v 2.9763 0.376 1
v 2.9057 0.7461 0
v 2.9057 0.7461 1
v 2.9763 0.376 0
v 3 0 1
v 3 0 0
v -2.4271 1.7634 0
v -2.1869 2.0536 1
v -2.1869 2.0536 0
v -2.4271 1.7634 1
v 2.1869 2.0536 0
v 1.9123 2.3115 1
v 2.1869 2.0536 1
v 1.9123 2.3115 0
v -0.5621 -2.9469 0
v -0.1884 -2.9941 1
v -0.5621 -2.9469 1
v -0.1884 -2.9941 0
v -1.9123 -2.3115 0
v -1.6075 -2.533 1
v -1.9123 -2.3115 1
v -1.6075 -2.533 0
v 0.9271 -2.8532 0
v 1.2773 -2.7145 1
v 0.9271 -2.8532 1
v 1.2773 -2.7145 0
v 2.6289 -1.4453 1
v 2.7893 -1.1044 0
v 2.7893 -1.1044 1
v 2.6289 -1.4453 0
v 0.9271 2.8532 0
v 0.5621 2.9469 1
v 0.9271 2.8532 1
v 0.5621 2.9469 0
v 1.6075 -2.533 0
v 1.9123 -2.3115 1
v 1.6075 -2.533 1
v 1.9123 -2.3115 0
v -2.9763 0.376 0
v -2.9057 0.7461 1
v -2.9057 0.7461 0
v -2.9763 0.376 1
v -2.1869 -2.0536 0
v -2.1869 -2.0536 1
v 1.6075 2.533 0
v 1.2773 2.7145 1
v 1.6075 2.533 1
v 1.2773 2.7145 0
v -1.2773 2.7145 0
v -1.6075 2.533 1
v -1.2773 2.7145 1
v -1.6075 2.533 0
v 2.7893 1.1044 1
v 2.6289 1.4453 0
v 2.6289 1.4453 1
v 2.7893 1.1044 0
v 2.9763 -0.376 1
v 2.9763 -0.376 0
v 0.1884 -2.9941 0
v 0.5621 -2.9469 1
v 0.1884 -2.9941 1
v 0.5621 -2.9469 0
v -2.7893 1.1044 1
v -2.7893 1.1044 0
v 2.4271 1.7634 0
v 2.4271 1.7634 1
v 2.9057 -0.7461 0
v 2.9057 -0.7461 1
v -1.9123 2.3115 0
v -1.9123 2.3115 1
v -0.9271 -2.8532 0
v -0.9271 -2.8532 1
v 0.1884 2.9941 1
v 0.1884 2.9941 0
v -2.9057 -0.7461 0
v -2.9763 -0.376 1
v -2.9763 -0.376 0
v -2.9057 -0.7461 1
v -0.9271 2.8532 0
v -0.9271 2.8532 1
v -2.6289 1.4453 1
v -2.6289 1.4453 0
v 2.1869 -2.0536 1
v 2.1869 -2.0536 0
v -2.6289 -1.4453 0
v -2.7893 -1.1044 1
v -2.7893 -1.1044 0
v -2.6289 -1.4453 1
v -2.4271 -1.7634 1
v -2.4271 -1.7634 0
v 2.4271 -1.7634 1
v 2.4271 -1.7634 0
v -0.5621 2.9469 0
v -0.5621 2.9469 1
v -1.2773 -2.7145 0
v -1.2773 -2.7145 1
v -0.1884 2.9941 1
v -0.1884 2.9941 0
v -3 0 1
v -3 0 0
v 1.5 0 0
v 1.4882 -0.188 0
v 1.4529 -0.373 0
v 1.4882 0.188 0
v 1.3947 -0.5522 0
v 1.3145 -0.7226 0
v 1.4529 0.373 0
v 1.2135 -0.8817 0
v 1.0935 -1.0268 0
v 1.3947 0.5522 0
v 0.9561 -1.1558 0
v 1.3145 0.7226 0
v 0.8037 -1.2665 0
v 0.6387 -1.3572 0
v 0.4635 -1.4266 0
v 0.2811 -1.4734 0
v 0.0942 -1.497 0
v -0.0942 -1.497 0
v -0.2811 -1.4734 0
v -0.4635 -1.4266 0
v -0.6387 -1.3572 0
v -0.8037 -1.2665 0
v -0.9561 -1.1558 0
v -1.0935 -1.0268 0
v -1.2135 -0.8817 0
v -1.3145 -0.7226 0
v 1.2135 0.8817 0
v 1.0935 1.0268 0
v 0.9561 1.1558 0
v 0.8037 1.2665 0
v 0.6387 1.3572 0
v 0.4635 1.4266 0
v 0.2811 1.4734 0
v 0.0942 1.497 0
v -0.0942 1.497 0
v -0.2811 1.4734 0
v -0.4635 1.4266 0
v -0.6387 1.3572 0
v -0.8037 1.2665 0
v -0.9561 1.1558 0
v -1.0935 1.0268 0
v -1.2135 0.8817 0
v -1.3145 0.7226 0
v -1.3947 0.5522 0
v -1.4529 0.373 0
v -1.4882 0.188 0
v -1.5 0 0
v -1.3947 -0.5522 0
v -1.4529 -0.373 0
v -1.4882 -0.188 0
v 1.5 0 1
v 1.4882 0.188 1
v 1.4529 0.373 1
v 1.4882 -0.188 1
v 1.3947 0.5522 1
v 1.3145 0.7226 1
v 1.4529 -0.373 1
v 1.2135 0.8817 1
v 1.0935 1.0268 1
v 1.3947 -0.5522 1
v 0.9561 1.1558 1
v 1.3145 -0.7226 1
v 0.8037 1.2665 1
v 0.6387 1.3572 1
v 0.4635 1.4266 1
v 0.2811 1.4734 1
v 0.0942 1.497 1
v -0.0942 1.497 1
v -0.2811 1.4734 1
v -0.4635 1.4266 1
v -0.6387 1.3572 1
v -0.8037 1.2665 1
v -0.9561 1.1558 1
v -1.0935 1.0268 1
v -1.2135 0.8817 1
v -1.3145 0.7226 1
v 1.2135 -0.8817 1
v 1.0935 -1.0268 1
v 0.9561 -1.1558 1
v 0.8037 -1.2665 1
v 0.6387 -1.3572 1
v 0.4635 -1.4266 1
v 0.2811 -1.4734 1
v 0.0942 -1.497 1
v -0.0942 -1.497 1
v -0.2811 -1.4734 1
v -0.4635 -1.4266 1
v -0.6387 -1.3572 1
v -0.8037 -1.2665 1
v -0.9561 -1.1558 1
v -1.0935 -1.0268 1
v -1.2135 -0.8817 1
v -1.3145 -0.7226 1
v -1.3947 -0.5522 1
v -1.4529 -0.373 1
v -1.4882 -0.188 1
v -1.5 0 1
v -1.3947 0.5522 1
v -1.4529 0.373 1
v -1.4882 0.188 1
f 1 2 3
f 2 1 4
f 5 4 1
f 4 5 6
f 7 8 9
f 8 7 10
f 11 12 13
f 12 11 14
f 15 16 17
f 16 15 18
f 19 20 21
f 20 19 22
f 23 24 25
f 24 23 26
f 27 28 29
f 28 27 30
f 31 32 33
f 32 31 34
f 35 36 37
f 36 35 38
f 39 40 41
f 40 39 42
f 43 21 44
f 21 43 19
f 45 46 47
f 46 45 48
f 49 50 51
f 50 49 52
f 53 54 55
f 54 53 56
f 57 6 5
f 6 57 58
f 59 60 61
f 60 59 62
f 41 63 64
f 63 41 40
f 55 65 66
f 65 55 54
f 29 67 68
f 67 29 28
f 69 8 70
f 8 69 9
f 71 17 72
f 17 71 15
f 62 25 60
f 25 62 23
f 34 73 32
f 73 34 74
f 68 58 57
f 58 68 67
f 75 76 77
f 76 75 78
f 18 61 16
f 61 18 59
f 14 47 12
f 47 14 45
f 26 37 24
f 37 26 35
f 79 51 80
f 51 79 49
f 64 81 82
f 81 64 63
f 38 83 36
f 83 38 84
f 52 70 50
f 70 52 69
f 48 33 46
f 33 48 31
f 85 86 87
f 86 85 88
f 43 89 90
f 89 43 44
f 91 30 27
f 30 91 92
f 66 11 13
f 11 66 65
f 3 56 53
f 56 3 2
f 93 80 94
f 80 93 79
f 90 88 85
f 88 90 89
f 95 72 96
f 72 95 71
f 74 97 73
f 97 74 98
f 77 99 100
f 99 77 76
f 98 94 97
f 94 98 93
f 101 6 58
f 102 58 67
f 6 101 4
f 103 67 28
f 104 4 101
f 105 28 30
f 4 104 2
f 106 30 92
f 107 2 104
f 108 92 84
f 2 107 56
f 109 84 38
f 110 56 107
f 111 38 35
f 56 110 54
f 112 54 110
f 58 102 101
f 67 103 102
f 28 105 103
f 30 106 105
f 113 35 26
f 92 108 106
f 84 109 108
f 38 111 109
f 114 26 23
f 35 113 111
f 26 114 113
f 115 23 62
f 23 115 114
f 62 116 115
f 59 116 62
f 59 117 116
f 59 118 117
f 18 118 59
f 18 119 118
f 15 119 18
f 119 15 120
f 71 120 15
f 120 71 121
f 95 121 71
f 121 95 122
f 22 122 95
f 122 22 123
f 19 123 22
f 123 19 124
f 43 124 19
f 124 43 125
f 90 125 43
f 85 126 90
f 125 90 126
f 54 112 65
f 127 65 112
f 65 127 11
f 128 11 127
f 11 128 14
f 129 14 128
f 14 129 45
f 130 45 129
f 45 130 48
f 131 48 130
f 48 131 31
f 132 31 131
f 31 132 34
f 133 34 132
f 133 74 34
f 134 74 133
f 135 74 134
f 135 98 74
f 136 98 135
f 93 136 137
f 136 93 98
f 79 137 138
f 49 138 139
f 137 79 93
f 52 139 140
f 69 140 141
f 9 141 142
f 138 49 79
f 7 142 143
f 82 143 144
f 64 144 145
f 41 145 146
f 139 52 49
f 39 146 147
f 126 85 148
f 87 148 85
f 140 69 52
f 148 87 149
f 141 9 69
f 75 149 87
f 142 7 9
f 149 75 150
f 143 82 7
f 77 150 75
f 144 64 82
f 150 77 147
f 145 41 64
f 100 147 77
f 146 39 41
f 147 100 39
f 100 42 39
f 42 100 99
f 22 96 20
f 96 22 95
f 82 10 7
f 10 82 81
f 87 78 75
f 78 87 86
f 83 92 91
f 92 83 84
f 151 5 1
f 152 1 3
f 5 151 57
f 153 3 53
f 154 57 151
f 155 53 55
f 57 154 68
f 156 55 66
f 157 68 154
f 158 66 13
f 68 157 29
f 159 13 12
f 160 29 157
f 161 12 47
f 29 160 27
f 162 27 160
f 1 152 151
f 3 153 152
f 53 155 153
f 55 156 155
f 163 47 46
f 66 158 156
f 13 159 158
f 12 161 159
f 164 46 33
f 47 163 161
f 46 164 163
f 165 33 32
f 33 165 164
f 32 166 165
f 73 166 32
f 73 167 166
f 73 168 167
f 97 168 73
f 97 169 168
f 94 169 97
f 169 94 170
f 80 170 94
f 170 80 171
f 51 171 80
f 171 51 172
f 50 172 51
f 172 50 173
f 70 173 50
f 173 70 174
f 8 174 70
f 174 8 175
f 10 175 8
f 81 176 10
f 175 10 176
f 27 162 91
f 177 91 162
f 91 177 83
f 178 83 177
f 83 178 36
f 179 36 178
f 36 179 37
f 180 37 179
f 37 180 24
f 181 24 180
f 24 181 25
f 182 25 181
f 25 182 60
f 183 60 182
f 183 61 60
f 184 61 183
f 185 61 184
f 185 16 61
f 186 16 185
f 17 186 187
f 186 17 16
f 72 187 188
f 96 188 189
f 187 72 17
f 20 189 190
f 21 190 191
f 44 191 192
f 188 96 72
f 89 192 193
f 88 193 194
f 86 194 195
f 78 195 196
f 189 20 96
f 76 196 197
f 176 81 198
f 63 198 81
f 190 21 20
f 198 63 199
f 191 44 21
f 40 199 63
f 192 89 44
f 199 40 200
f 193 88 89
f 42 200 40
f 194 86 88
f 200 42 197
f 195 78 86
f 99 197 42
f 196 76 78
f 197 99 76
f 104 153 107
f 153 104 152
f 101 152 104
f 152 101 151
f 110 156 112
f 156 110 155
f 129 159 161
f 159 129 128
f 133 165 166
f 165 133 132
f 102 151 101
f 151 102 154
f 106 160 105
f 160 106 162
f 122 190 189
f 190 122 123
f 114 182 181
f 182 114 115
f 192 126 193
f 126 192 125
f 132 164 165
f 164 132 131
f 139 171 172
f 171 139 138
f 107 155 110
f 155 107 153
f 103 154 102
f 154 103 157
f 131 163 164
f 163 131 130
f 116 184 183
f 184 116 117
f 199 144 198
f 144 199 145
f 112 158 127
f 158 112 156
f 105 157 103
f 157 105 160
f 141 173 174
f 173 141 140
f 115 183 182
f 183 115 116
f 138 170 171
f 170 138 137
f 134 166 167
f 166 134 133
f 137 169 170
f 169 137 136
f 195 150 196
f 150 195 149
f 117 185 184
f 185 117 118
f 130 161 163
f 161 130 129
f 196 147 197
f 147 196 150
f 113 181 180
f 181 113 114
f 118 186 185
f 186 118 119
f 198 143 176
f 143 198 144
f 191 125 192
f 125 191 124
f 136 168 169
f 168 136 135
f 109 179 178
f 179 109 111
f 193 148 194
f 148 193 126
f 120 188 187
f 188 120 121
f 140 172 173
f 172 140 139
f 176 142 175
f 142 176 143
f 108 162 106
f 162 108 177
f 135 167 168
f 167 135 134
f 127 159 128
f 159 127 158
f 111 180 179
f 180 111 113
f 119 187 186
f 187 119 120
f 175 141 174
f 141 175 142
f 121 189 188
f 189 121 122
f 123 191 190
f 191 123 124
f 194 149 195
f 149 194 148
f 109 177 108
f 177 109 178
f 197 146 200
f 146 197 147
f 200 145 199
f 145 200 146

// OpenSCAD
$fn=50;
difference() {
    cylinder(h=1, d=6);
    cylinder(h=1, d=3);
}
